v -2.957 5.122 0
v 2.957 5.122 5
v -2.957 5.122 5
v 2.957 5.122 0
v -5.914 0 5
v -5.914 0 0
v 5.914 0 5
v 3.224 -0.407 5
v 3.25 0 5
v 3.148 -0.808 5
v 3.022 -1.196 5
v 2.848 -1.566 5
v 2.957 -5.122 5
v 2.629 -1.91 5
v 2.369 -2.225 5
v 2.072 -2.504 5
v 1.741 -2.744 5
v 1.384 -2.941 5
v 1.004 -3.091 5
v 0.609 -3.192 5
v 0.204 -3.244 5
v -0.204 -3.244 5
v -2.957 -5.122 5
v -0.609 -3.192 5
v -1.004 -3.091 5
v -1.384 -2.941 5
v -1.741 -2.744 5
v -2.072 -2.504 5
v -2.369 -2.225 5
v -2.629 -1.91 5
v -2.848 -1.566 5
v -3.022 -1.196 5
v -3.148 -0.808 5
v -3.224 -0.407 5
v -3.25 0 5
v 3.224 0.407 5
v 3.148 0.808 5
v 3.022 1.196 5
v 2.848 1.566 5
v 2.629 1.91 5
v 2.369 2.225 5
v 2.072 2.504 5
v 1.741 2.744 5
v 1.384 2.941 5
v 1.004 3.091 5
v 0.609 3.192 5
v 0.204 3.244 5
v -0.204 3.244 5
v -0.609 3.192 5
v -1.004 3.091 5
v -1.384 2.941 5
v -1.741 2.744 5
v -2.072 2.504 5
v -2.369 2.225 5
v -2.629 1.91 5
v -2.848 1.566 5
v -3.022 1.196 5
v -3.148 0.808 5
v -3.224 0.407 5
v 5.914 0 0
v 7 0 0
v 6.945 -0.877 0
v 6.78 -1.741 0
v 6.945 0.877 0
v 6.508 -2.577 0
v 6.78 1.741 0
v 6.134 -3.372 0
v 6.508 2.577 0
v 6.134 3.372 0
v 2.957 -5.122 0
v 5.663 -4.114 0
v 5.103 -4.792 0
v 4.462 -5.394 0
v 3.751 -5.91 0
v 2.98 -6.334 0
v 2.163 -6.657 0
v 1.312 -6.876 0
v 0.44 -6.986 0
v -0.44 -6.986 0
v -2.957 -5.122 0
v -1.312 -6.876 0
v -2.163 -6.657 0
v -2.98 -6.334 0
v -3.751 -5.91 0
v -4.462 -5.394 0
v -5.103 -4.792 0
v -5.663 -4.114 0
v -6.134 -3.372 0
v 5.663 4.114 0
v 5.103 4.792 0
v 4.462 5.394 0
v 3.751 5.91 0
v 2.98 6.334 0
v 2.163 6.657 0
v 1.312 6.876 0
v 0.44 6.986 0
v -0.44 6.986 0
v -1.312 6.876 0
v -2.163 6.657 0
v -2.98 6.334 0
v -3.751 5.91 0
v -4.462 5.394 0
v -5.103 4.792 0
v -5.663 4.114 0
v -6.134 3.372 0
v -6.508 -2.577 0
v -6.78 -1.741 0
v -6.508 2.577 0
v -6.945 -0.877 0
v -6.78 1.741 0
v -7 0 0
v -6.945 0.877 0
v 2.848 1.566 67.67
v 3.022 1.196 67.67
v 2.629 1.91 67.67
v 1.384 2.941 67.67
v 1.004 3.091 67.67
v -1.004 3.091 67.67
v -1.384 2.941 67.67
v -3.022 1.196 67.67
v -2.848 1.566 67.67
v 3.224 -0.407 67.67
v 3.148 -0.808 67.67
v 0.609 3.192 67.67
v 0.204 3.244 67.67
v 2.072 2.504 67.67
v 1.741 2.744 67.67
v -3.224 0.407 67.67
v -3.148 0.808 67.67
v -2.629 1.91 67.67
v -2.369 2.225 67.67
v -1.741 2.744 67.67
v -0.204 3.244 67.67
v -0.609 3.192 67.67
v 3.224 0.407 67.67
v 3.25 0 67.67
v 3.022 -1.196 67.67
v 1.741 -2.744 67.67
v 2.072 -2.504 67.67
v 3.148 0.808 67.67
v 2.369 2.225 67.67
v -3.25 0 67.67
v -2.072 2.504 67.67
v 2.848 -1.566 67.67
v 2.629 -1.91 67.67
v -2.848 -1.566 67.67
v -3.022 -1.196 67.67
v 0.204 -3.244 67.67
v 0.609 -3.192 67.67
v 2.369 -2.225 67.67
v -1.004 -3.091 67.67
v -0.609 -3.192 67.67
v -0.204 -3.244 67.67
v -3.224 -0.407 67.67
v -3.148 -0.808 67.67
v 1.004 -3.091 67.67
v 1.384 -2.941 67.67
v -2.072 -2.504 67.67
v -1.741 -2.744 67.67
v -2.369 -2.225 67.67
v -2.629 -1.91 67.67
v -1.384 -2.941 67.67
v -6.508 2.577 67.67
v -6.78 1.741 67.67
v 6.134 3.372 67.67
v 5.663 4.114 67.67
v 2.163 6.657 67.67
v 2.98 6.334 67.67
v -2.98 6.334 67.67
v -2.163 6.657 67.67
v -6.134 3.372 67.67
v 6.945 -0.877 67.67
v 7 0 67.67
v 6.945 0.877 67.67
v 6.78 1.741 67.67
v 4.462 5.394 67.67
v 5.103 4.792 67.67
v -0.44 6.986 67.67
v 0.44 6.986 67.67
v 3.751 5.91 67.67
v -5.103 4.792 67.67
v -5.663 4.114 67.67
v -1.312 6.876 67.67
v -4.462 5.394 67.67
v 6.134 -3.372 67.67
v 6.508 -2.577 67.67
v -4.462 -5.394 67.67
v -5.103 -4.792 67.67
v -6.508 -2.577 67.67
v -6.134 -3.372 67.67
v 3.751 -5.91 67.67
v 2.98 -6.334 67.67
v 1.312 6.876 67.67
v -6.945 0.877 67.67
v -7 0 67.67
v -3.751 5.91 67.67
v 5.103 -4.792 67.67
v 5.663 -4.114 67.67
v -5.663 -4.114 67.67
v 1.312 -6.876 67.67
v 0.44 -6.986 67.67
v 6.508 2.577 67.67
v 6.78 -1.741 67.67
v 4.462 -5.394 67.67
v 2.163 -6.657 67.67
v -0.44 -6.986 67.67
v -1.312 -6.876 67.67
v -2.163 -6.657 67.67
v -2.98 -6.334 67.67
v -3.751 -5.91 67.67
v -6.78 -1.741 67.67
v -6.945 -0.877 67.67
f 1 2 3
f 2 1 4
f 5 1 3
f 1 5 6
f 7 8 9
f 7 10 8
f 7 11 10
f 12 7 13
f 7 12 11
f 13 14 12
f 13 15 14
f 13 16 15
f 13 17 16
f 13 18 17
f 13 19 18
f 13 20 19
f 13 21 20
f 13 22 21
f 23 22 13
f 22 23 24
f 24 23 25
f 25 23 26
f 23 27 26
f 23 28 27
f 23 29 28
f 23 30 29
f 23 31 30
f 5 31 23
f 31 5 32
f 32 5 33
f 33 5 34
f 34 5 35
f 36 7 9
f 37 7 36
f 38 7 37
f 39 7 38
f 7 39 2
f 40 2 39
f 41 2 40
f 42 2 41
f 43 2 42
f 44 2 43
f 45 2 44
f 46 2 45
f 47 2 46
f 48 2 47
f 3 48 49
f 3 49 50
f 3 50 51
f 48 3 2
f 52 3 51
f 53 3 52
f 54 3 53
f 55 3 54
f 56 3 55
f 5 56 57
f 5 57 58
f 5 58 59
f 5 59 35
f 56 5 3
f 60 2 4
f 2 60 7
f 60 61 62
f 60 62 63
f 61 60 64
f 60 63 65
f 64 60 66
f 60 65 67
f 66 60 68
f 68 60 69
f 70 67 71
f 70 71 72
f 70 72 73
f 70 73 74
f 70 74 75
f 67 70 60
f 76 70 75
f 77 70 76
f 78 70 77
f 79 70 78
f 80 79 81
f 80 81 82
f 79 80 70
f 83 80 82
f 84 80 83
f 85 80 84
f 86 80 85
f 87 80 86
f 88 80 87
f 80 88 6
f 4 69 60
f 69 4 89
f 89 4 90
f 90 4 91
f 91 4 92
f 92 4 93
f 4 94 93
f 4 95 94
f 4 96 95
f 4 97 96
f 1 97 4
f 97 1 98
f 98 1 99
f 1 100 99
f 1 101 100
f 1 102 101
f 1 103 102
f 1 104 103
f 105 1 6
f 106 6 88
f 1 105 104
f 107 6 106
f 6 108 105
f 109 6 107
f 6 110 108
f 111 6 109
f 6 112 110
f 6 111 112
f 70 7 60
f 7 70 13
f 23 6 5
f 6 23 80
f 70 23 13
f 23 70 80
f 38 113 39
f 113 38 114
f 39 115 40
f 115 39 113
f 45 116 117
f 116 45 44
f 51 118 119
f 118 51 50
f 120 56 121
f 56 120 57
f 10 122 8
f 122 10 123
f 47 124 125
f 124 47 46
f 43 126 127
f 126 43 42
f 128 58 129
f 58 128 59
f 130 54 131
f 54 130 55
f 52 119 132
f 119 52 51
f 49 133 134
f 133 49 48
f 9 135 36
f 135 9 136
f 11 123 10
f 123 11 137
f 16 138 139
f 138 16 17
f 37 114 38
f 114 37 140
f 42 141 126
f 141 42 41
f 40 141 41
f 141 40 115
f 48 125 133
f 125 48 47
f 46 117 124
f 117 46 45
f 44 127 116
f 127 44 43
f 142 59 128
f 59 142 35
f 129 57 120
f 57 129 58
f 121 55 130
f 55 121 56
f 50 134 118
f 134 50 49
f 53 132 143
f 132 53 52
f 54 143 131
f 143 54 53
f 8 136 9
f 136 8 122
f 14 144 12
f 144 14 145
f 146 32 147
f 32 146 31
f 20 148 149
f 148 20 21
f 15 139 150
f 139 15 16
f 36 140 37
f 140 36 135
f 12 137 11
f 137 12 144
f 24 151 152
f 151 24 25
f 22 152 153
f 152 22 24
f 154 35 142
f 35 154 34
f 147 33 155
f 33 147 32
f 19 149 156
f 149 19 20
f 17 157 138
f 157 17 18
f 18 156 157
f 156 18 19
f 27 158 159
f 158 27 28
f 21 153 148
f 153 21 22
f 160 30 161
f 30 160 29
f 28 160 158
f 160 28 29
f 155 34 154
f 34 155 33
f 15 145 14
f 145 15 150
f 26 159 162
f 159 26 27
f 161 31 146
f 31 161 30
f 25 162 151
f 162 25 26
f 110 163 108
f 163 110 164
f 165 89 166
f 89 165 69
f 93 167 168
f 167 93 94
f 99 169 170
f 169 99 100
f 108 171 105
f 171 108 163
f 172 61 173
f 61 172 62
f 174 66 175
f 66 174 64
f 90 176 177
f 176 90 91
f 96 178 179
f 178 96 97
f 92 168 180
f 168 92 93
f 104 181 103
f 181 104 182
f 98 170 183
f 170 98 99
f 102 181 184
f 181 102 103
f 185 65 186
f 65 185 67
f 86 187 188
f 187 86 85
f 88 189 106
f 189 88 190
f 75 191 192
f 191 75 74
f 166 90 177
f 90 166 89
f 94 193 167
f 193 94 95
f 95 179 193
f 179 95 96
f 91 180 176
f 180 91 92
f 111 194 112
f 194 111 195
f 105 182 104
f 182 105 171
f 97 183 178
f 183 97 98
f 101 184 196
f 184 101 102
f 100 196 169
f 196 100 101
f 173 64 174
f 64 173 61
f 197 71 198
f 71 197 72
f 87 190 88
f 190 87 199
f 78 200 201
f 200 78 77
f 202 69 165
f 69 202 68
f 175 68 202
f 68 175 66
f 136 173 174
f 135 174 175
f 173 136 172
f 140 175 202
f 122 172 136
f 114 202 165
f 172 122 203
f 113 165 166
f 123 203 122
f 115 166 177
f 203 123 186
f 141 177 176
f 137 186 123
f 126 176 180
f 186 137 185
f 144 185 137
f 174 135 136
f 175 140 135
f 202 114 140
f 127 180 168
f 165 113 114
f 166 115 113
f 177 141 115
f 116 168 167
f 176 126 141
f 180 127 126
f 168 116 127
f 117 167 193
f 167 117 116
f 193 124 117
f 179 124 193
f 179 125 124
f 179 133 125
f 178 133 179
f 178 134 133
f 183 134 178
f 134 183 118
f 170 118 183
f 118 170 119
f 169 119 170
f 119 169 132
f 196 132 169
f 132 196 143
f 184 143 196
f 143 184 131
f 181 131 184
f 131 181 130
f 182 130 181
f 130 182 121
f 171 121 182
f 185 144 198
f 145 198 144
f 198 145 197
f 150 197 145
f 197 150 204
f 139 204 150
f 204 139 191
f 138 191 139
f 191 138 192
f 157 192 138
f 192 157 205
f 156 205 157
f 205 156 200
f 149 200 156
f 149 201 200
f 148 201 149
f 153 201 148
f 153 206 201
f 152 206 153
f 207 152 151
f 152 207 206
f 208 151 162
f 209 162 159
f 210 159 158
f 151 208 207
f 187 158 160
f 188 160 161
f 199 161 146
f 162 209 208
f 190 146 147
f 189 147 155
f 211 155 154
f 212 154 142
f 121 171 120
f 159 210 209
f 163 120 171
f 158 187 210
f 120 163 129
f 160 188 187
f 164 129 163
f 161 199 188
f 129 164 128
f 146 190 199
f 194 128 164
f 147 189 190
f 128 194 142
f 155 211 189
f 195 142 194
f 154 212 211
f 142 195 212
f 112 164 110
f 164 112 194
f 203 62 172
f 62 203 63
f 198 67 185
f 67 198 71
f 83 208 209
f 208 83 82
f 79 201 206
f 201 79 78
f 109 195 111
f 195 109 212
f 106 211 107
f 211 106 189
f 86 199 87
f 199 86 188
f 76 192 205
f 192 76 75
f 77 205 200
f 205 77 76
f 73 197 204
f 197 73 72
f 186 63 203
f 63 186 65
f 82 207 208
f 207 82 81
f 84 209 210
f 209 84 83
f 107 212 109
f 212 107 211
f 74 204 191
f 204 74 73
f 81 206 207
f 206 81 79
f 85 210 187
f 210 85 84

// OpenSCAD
// Dimensions in mm
thickness = 67.67;
pocket_depth = 5;

$fn = 50;
difference() {
    cylinder(r=7,h=thickness);
    translate([0,0,-1]) cylinder(r=3.25,h=thickness+2);
    cylinder(r=5.91425,h=pocket_depth,$fn=6);
}
